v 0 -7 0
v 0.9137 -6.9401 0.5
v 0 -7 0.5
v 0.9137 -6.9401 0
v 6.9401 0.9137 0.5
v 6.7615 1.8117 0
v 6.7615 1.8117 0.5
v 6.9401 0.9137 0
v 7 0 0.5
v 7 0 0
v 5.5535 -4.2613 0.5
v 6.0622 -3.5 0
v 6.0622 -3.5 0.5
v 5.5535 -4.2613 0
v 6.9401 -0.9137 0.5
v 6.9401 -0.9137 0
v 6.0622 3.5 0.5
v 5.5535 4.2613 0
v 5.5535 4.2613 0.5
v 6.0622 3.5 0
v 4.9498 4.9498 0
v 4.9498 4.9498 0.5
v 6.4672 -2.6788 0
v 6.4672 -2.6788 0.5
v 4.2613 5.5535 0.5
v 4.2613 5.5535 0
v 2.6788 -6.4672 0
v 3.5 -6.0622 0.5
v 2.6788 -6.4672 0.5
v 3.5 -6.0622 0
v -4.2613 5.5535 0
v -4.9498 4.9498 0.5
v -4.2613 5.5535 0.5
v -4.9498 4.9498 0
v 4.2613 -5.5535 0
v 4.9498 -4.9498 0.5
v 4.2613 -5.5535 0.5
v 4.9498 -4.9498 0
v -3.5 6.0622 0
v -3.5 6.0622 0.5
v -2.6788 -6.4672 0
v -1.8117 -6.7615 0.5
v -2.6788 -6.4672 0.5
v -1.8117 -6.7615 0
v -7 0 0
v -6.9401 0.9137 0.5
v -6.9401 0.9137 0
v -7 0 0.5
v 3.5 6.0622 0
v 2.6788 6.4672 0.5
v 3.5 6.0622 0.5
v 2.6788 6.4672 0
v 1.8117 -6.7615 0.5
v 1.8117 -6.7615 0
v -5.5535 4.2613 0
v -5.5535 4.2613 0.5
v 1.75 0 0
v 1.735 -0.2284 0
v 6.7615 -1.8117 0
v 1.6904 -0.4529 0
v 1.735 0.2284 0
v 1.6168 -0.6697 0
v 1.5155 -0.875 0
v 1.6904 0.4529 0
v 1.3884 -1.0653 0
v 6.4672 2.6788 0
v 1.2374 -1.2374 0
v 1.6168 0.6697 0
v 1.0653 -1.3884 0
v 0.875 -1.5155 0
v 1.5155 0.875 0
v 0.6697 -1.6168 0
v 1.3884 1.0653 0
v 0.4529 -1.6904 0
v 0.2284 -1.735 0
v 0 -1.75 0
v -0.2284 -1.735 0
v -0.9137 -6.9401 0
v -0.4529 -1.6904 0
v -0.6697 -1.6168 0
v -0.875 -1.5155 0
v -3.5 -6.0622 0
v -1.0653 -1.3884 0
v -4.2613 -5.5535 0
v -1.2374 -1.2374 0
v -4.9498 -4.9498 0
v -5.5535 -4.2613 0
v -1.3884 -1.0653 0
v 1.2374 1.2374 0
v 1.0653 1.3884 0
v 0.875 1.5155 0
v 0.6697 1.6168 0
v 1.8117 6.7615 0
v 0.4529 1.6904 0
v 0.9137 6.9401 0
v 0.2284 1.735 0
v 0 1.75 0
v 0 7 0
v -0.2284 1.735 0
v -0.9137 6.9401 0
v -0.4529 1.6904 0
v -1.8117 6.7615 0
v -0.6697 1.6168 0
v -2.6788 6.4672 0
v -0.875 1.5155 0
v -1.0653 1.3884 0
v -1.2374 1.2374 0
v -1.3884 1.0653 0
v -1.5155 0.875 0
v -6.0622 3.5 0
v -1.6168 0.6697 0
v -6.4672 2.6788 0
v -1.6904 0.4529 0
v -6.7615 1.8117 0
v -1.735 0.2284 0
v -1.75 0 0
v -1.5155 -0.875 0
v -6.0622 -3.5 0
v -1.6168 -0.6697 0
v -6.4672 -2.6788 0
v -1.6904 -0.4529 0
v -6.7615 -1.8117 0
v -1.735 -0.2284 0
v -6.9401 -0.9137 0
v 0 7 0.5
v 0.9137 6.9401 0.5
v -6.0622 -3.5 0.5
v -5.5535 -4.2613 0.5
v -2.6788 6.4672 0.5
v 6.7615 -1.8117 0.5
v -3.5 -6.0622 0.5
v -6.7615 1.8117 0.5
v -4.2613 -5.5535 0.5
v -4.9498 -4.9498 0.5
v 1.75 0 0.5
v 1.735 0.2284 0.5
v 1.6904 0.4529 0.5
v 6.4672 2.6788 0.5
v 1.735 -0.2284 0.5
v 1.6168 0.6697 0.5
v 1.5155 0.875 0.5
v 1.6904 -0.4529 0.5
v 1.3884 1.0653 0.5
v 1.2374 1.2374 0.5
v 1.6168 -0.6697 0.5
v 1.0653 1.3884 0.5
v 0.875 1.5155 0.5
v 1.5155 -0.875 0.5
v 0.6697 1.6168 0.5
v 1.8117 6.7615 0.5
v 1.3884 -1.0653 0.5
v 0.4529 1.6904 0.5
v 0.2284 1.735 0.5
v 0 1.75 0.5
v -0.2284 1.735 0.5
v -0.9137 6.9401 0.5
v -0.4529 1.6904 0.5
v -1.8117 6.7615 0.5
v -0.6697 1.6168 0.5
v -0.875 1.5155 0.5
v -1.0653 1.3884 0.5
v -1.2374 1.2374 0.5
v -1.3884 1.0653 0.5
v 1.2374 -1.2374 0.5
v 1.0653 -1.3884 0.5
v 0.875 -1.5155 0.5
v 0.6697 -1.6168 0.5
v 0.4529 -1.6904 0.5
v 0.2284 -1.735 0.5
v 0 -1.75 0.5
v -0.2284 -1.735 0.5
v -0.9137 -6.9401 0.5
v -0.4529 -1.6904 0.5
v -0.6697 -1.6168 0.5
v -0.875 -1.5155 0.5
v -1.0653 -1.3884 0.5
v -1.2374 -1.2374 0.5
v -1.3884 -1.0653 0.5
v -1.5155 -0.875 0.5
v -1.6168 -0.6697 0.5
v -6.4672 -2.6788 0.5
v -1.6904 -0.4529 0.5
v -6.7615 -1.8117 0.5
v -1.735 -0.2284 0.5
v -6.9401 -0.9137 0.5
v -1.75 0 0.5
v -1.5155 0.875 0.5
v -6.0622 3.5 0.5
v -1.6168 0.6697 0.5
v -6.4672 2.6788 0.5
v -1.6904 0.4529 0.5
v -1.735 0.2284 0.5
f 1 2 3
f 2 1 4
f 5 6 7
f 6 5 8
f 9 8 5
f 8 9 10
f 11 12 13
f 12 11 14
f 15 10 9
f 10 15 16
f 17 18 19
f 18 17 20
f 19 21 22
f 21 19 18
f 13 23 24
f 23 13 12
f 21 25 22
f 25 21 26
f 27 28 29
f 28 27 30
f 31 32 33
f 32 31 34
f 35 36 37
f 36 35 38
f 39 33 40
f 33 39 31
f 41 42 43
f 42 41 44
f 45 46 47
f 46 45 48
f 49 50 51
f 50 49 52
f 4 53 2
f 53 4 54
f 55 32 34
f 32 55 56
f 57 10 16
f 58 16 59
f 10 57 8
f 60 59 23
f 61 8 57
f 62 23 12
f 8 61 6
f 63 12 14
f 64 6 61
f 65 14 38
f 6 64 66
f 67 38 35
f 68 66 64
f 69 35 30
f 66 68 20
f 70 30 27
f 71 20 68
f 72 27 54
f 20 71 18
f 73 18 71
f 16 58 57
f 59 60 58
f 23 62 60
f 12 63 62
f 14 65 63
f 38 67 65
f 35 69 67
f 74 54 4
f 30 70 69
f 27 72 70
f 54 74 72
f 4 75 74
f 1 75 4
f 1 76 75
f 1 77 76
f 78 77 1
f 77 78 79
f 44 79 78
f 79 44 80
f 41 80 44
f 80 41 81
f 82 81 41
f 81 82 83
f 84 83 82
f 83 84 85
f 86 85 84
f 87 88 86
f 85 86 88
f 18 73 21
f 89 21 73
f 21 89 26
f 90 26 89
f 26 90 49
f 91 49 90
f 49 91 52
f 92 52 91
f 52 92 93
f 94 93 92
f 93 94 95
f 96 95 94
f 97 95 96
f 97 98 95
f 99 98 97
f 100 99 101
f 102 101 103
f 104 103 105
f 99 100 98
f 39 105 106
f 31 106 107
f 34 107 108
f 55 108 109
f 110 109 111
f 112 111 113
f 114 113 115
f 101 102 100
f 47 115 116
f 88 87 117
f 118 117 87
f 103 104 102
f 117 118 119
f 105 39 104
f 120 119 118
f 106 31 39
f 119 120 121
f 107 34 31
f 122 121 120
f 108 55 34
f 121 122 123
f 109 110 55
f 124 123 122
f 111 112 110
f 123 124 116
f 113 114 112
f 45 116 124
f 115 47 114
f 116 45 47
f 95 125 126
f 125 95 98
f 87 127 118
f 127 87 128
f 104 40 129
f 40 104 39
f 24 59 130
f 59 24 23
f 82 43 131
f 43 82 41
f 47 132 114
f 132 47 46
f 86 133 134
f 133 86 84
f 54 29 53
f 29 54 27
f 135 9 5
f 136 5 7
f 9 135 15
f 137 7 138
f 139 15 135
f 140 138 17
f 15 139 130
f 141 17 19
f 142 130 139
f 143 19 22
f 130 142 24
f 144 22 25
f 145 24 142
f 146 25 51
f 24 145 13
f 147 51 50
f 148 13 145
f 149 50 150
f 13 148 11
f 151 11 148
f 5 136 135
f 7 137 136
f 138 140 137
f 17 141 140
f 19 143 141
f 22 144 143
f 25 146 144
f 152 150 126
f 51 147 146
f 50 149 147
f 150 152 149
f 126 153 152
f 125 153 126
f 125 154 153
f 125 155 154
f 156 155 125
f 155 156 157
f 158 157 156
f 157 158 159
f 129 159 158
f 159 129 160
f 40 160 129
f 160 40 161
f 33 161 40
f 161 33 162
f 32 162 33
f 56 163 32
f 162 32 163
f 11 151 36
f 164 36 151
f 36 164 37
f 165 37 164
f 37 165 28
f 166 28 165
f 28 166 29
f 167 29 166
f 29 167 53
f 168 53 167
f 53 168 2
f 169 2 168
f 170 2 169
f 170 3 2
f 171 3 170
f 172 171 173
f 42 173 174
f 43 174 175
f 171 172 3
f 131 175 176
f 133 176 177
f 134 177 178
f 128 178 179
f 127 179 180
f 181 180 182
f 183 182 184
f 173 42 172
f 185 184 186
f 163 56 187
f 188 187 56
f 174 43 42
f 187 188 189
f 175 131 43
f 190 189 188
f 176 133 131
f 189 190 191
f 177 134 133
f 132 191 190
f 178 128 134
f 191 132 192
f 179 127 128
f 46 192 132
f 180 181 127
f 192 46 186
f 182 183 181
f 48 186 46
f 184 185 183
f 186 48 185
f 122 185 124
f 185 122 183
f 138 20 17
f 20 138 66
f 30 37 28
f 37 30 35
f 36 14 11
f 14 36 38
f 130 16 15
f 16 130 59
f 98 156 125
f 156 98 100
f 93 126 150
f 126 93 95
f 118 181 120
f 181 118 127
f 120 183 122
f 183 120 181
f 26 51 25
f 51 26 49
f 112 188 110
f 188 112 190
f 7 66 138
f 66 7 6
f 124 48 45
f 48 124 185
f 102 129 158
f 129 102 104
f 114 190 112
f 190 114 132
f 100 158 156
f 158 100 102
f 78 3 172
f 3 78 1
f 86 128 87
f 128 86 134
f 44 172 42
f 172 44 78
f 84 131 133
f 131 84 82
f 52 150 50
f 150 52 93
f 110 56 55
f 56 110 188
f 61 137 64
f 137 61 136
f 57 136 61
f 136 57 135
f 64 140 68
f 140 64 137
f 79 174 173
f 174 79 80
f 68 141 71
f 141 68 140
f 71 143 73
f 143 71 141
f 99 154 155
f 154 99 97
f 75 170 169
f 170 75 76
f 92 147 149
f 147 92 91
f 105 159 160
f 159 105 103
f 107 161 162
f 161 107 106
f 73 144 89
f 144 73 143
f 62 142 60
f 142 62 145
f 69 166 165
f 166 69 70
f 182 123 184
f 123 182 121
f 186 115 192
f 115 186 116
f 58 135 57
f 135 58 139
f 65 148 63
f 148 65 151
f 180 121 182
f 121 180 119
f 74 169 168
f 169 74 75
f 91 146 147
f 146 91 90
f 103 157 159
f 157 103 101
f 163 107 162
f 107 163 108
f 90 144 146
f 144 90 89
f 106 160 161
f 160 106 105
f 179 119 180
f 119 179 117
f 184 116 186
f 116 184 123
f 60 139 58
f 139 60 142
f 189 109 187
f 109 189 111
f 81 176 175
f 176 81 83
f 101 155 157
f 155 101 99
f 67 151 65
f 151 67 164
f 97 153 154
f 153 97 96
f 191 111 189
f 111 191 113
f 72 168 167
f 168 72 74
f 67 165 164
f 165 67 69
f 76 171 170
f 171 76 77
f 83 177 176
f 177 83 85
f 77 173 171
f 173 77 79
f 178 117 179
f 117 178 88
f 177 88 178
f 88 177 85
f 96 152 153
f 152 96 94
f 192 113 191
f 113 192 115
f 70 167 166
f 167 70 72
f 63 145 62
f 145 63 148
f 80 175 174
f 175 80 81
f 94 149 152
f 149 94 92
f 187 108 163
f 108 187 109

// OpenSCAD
// file: parameters.scad
// =============================================================================
// Gen-BC — nightly 2026-10-03 (physics_scorer, honest magpylib watts)
// Clocking 0 deg (magnets N facing S / through-magnetised stack) + D-flat keyed bore + index notch + flip-symmetric braces/bolts.
// Windable 2-piece bobbin; turns = physics_scorer turns_fit; copper only between flanges.
// former_web = 3.60 mm (taller copper vs Gen-BA 2.46) — gap grows with web (honest Bz tradeoff).
// =============================================================================
topology            = "mid_rotor";

// --- Wire / winding (physics_scorer winding-fit) -------------------------------
wire_awg            = 26;
wire_od             = 0.45;     // insulated OD mm (bare 0.405)
fill_realistic      = 0.60;     // insulated-wire area / window, hand-wound layered
turns               = 114;       // = physics_scorer turns_fit (do NOT raise)
coil_former_type    = "bobbin";
coil_core_inset     = 8.40;     // radial copper build: hub = copper boundary inset by this
wind_build_axial    = 0.0;      // nothing proud of the flanges
wind_build_radial   = 0.0;

// --- Bobbin (base + lid) ---------------------------------------------------------
coil_id_r           = 28.00;    // copper boundary sector (over the magnet track)
coil_od_r           = 52.00;
span_deg            = 32.42;    // = pitch - 2*asin((wall+0.85)/coil_id_r) -> >=1.2 mm stator web
former_web          = 3.60;     // copper height between flanges
flange_t            = 0.60;
wall                = 1.00;     // flange lip beyond copper
former_bare_h       = former_web + 2 * flange_t;
coil_envelope_h     = former_bare_h + 2 * wind_build_axial;
tab_w               = 7.0;
tab_len             = 7.0;
tab_h               = former_bare_h / 2;
pin_d               = 1.9;      // 1.75 mm filament locating pin
coil_mount_r        = coil_od_r + 0.2 + 4.0;
lead_y              = 1.6;
lead_slot_w         = 0.9;
lead_groove_d       = 0.6;

// --- Gap -------------------------------------------------------------------------
run_clear           = 0.50;     // rotor face -> flange
gap_spacer_h        = run_clear + wind_build_axial;
m2m                 = coil_envelope_h + 2 * run_clear;

// --- Stator ----------------------------------------------------------------------
coil_stations       = 9;        // per stator; x2 stators
bay_clear           = 0.25;
bay_depth           = former_bare_h;
stator_back_web     = 2.0;
stator_thick        = bay_depth + stator_back_web;
stator_od           = 160.0;
shaft_clear_stator  = 14.0;     // stator is static; shaft only

// --- Rotor(s) --------------------------------------------------------------------
magnet_Br           = 1.43;     // N52
halbach_magnetisation = "diametric"; // O5x5 assist magnets MUST be DIAMETRICALLY magnetised (tangential)
rotor_b_same_axis   = true;     // same-index magnets share one axis: N faces S across the gap
large_pocket_d      = 20.3;
small_pocket_d      = 5.3;
pocket_h            = 5.2;
large_n             = 8;
R_large             = 40.0;
R_small_inner       = 26.0;
R_small_mid         = 40.0;
R_small_outer       = 56.0;
carrier_od          = 158.0;
mid_carrier_thick   = 12.0;
hub_h               = 10.0;
hub_od              = 30.0;
rotor_b_offset_deg  = 0.0;      // CLOCKING: magnets directly opposite
shaft_key           = "dflat";
dflat_depth         = 0.5;      // 8 mm shaft with 0.5 mm flat (7.5 across flat)
index_notch_d       = 3.0;

// --- Modular MAX interface (Gen-E family) -----------------------------------------
shaft_bore          = 8.35;
dflat_x             = 4.0 - dflat_depth + (shaft_bore - 8.0) / 2;
bearing_d           = 21.85;
bearing_h           = 7.2;
m3_clear            = 3.5;
bolt_r_inner        = 18.0;
bolt_n_inner        = 4;
bolt_inner_angles   = [22.5, -22.5, 157.5, 202.5];  // between poles, flip-symmetric
flange_bolt_r       = 72.0;
flange_bolt_n       = 6;
brace_r             = 68.0;
brace_d             = 4.3;
brace_n             = 4;
brace_angles        = [45, 135, 225, 315];          // flip-symmetric

spacer_pad_od       = 14.0;
spacer_pad_id       = m3_clear;
endbell_od          = 160.0;
endbell_thick       = 8.0;
endbell_shaft_clear = 10.0;
plate_max_mm        = 410;

$fn = 64;
// main file
// Gen-BC — assembly gap shim, h = run_clear (rotor face -> flange); copper is inside the flanges
include <parameters.scad>;
$fn = 48;
difference() {
    cylinder(d=spacer_pad_od, h=gap_spacer_h);
    translate([0, 0, -0.1]) cylinder(d=spacer_pad_id, h=gap_spacer_h + 0.2);
}
